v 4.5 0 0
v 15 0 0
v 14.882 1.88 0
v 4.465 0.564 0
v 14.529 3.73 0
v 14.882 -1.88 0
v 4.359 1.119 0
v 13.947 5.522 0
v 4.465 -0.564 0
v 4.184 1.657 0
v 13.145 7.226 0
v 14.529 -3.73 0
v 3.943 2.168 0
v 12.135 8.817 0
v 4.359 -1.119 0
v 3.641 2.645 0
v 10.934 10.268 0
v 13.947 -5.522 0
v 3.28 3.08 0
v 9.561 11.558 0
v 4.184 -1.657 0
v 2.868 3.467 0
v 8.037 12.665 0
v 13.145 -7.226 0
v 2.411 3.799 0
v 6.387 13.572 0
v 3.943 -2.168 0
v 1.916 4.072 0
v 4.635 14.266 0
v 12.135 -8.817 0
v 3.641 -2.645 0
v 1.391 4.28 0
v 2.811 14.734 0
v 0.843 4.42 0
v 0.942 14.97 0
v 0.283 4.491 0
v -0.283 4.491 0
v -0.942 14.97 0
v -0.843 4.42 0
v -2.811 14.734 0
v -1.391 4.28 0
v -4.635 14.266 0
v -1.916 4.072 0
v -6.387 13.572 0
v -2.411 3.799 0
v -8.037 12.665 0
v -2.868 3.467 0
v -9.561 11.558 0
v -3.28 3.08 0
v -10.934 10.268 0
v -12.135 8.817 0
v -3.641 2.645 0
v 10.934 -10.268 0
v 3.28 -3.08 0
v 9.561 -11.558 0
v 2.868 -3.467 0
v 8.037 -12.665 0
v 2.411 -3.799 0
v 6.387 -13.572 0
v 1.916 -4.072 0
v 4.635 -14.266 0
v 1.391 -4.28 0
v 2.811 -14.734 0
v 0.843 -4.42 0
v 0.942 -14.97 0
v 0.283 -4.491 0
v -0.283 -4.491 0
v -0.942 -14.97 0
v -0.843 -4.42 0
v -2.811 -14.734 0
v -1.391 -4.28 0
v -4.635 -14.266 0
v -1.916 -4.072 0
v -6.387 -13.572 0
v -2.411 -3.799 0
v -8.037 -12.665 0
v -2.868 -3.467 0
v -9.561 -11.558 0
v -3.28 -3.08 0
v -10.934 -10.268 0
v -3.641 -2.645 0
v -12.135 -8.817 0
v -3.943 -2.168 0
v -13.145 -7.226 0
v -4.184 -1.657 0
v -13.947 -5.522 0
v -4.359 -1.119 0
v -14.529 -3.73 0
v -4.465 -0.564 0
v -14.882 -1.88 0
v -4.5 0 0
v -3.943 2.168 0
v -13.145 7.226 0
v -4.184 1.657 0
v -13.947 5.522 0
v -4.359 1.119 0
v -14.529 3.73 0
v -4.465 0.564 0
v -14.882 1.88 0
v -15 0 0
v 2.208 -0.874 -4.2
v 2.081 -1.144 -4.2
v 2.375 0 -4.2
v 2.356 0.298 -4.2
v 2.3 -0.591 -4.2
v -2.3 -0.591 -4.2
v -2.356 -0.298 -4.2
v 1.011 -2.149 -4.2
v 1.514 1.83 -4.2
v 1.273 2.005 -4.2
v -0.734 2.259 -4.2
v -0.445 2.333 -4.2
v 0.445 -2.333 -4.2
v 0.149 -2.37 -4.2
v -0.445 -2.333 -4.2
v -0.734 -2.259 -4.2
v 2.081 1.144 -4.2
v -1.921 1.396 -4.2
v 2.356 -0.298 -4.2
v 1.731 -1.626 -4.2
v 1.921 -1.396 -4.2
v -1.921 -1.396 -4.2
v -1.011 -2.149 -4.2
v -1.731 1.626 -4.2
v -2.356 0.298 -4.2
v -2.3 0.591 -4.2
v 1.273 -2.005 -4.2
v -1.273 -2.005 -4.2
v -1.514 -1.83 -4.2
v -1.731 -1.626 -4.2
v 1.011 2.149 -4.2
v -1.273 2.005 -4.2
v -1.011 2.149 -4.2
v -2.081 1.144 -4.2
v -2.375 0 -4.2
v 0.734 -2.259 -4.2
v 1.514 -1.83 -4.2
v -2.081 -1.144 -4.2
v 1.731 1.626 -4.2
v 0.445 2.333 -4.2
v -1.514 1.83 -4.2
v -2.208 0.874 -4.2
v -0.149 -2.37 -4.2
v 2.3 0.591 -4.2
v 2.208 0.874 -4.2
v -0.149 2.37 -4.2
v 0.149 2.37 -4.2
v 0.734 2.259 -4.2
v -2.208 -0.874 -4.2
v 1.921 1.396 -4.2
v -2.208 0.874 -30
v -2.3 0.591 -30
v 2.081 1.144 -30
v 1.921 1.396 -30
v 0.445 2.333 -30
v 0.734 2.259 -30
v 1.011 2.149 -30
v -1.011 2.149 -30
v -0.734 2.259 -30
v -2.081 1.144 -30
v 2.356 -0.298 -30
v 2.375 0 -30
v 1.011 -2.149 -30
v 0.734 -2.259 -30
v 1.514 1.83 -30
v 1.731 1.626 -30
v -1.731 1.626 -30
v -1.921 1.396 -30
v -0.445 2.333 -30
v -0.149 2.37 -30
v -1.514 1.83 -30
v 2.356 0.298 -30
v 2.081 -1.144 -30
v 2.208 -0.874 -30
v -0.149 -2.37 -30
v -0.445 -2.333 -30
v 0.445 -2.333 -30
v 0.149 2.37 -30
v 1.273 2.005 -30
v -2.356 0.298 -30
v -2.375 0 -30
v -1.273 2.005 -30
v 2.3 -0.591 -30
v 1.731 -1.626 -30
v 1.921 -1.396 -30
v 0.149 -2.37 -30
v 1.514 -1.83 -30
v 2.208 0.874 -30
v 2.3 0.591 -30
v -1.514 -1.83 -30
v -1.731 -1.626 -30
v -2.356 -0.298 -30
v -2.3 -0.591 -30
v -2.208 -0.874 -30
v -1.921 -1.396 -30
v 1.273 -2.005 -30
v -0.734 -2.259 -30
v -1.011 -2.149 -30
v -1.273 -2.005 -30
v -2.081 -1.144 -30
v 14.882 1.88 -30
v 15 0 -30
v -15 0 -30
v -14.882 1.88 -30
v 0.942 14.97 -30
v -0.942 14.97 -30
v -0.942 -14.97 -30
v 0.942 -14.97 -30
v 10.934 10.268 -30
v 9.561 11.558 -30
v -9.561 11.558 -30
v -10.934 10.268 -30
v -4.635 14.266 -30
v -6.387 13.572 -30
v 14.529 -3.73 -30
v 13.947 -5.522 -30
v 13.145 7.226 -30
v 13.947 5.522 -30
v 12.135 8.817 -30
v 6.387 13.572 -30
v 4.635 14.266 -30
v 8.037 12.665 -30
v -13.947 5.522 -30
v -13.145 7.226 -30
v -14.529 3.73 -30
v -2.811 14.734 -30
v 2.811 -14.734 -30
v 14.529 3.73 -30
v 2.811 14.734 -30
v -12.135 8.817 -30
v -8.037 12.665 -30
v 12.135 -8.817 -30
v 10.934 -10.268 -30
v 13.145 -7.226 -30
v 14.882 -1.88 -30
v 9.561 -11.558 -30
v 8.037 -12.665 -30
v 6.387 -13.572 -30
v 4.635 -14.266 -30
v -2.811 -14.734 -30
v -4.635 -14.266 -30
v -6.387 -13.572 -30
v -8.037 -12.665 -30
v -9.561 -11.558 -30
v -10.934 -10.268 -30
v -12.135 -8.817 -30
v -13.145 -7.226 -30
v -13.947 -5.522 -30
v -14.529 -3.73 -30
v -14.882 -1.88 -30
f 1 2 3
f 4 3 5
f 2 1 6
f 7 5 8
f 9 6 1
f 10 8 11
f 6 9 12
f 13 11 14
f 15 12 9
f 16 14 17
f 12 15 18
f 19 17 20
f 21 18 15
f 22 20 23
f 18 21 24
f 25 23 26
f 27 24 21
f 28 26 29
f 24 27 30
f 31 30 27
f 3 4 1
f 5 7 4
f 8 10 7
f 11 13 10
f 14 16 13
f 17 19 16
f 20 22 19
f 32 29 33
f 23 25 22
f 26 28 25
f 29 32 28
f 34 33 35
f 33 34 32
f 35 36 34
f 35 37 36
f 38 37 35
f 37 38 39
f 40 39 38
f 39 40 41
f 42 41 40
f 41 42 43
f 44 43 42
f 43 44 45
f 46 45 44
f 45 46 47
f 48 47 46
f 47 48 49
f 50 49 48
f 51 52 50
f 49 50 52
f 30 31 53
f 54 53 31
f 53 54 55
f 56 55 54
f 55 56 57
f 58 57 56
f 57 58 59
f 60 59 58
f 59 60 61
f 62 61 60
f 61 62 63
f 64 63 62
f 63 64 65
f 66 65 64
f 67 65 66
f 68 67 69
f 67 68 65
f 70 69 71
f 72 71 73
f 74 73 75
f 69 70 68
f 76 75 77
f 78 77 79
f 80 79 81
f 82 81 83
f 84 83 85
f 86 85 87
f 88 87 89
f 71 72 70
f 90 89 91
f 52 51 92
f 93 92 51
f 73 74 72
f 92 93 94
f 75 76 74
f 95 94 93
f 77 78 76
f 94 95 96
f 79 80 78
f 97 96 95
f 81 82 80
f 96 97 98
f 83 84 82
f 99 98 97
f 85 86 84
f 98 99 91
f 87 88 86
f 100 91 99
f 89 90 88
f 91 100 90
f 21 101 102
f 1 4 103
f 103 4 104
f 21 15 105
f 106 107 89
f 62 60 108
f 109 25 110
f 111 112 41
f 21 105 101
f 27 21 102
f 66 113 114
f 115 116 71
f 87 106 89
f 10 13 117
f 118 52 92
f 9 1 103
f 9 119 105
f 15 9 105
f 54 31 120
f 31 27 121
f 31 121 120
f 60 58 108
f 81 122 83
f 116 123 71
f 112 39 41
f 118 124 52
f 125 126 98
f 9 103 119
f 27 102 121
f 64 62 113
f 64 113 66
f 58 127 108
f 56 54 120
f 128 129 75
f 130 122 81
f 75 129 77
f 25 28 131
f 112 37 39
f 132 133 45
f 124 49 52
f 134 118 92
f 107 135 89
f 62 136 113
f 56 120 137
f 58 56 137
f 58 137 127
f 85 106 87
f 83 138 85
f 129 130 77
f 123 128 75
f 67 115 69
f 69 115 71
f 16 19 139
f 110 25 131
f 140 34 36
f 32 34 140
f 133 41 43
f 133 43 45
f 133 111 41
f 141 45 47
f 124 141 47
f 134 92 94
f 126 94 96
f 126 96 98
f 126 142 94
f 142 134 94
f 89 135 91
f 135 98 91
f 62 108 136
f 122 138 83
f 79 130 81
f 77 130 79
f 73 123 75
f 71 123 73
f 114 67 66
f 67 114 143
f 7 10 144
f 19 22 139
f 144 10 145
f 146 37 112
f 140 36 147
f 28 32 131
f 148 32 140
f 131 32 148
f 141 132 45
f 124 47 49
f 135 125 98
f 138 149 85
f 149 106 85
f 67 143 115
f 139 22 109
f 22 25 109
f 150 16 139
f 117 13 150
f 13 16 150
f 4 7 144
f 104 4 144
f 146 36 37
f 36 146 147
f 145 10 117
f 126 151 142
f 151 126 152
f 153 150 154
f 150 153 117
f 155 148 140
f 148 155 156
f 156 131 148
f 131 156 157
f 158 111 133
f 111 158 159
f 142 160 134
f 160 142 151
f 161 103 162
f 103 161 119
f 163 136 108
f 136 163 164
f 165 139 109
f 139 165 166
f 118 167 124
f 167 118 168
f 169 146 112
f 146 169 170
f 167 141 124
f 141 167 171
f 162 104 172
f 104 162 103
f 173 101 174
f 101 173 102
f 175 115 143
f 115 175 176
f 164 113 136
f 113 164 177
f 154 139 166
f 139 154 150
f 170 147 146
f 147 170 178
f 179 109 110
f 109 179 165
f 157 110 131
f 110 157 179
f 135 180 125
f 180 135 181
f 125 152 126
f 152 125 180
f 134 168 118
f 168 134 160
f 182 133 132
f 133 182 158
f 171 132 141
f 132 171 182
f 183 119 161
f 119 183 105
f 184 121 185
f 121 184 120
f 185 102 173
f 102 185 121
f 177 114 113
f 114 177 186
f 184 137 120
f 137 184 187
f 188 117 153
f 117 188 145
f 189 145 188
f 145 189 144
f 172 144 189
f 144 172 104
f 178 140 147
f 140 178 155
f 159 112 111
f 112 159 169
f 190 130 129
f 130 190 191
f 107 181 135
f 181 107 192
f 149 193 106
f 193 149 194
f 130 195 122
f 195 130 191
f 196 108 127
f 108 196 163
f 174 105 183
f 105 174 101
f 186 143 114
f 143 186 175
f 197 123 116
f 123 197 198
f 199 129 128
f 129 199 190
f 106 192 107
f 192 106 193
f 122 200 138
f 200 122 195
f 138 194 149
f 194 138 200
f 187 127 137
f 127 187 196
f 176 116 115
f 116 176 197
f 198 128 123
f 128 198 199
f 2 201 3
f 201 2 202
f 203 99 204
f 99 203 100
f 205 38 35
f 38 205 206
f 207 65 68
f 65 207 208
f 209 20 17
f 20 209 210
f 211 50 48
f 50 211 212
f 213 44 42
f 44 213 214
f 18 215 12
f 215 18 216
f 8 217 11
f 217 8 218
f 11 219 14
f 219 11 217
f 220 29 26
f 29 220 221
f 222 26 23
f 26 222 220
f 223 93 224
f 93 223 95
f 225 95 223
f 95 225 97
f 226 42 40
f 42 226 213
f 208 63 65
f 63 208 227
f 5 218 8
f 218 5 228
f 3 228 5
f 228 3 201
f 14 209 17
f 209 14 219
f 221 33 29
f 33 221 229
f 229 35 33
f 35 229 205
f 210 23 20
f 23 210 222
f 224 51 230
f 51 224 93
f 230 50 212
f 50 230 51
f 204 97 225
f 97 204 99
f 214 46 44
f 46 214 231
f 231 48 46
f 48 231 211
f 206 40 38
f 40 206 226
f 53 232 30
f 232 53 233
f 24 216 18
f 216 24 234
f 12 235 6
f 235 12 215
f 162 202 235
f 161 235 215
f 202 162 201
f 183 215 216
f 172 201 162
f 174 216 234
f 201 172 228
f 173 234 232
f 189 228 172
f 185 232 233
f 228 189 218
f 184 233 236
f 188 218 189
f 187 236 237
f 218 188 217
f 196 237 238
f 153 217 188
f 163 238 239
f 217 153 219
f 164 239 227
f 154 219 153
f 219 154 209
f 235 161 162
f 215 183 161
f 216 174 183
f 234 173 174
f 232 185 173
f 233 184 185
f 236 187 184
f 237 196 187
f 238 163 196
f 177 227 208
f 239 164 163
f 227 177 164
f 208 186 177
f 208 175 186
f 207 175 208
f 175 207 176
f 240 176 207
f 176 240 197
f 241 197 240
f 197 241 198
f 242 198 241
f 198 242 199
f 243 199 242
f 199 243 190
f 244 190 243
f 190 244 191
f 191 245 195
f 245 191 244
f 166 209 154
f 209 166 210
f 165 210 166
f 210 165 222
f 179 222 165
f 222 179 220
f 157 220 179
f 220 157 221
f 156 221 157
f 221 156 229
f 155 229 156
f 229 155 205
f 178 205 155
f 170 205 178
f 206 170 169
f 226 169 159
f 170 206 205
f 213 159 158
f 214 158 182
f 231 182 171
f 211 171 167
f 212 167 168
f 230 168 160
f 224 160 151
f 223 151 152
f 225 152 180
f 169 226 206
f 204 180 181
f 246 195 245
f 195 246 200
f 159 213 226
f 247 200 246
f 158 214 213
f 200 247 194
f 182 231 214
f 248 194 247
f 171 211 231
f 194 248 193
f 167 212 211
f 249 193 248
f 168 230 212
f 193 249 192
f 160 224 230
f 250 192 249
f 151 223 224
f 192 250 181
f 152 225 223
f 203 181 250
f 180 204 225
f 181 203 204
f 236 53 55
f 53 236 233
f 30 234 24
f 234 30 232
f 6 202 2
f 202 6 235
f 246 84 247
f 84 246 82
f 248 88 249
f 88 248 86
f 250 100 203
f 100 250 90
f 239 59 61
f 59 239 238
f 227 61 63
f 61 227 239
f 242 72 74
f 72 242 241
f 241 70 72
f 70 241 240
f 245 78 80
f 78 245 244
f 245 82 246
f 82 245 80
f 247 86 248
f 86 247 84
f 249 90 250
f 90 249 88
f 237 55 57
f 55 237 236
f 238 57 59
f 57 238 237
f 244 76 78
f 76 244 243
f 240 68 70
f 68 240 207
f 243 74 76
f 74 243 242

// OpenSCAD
$fn = 50;


difference() {
	union() {
		translate(v = [0, 0, -30.0000000000]) {
			cylinder(h = 30, r = 15.0000000000);
		}
	}
	union() {
		translate(v = [0, 0, 0]) {
			rotate(a = [0, 0, 0]) {
				difference() {
					union() {
						translate(v = [0, 0, -33.0000000000]) {
							cylinder(h = 33, r = 2.2500000000);
						}
						translate(v = [0, 0, -4.2000000000]) {
							cylinder(h = 4.2000000000, r1 = 2.3750000000, r2 = 4.5000000000);
						}
						translate(v = [0, 0, -33.0000000000]) {
							cylinder(h = 33, r = 2.3750000000);
						}
						translate(v = [0, 0, -33.0000000000]) {
							cylinder(h = 33, r = 2.2500000000);
						}
					}
					union();
				}
			}
		}
	}
}
